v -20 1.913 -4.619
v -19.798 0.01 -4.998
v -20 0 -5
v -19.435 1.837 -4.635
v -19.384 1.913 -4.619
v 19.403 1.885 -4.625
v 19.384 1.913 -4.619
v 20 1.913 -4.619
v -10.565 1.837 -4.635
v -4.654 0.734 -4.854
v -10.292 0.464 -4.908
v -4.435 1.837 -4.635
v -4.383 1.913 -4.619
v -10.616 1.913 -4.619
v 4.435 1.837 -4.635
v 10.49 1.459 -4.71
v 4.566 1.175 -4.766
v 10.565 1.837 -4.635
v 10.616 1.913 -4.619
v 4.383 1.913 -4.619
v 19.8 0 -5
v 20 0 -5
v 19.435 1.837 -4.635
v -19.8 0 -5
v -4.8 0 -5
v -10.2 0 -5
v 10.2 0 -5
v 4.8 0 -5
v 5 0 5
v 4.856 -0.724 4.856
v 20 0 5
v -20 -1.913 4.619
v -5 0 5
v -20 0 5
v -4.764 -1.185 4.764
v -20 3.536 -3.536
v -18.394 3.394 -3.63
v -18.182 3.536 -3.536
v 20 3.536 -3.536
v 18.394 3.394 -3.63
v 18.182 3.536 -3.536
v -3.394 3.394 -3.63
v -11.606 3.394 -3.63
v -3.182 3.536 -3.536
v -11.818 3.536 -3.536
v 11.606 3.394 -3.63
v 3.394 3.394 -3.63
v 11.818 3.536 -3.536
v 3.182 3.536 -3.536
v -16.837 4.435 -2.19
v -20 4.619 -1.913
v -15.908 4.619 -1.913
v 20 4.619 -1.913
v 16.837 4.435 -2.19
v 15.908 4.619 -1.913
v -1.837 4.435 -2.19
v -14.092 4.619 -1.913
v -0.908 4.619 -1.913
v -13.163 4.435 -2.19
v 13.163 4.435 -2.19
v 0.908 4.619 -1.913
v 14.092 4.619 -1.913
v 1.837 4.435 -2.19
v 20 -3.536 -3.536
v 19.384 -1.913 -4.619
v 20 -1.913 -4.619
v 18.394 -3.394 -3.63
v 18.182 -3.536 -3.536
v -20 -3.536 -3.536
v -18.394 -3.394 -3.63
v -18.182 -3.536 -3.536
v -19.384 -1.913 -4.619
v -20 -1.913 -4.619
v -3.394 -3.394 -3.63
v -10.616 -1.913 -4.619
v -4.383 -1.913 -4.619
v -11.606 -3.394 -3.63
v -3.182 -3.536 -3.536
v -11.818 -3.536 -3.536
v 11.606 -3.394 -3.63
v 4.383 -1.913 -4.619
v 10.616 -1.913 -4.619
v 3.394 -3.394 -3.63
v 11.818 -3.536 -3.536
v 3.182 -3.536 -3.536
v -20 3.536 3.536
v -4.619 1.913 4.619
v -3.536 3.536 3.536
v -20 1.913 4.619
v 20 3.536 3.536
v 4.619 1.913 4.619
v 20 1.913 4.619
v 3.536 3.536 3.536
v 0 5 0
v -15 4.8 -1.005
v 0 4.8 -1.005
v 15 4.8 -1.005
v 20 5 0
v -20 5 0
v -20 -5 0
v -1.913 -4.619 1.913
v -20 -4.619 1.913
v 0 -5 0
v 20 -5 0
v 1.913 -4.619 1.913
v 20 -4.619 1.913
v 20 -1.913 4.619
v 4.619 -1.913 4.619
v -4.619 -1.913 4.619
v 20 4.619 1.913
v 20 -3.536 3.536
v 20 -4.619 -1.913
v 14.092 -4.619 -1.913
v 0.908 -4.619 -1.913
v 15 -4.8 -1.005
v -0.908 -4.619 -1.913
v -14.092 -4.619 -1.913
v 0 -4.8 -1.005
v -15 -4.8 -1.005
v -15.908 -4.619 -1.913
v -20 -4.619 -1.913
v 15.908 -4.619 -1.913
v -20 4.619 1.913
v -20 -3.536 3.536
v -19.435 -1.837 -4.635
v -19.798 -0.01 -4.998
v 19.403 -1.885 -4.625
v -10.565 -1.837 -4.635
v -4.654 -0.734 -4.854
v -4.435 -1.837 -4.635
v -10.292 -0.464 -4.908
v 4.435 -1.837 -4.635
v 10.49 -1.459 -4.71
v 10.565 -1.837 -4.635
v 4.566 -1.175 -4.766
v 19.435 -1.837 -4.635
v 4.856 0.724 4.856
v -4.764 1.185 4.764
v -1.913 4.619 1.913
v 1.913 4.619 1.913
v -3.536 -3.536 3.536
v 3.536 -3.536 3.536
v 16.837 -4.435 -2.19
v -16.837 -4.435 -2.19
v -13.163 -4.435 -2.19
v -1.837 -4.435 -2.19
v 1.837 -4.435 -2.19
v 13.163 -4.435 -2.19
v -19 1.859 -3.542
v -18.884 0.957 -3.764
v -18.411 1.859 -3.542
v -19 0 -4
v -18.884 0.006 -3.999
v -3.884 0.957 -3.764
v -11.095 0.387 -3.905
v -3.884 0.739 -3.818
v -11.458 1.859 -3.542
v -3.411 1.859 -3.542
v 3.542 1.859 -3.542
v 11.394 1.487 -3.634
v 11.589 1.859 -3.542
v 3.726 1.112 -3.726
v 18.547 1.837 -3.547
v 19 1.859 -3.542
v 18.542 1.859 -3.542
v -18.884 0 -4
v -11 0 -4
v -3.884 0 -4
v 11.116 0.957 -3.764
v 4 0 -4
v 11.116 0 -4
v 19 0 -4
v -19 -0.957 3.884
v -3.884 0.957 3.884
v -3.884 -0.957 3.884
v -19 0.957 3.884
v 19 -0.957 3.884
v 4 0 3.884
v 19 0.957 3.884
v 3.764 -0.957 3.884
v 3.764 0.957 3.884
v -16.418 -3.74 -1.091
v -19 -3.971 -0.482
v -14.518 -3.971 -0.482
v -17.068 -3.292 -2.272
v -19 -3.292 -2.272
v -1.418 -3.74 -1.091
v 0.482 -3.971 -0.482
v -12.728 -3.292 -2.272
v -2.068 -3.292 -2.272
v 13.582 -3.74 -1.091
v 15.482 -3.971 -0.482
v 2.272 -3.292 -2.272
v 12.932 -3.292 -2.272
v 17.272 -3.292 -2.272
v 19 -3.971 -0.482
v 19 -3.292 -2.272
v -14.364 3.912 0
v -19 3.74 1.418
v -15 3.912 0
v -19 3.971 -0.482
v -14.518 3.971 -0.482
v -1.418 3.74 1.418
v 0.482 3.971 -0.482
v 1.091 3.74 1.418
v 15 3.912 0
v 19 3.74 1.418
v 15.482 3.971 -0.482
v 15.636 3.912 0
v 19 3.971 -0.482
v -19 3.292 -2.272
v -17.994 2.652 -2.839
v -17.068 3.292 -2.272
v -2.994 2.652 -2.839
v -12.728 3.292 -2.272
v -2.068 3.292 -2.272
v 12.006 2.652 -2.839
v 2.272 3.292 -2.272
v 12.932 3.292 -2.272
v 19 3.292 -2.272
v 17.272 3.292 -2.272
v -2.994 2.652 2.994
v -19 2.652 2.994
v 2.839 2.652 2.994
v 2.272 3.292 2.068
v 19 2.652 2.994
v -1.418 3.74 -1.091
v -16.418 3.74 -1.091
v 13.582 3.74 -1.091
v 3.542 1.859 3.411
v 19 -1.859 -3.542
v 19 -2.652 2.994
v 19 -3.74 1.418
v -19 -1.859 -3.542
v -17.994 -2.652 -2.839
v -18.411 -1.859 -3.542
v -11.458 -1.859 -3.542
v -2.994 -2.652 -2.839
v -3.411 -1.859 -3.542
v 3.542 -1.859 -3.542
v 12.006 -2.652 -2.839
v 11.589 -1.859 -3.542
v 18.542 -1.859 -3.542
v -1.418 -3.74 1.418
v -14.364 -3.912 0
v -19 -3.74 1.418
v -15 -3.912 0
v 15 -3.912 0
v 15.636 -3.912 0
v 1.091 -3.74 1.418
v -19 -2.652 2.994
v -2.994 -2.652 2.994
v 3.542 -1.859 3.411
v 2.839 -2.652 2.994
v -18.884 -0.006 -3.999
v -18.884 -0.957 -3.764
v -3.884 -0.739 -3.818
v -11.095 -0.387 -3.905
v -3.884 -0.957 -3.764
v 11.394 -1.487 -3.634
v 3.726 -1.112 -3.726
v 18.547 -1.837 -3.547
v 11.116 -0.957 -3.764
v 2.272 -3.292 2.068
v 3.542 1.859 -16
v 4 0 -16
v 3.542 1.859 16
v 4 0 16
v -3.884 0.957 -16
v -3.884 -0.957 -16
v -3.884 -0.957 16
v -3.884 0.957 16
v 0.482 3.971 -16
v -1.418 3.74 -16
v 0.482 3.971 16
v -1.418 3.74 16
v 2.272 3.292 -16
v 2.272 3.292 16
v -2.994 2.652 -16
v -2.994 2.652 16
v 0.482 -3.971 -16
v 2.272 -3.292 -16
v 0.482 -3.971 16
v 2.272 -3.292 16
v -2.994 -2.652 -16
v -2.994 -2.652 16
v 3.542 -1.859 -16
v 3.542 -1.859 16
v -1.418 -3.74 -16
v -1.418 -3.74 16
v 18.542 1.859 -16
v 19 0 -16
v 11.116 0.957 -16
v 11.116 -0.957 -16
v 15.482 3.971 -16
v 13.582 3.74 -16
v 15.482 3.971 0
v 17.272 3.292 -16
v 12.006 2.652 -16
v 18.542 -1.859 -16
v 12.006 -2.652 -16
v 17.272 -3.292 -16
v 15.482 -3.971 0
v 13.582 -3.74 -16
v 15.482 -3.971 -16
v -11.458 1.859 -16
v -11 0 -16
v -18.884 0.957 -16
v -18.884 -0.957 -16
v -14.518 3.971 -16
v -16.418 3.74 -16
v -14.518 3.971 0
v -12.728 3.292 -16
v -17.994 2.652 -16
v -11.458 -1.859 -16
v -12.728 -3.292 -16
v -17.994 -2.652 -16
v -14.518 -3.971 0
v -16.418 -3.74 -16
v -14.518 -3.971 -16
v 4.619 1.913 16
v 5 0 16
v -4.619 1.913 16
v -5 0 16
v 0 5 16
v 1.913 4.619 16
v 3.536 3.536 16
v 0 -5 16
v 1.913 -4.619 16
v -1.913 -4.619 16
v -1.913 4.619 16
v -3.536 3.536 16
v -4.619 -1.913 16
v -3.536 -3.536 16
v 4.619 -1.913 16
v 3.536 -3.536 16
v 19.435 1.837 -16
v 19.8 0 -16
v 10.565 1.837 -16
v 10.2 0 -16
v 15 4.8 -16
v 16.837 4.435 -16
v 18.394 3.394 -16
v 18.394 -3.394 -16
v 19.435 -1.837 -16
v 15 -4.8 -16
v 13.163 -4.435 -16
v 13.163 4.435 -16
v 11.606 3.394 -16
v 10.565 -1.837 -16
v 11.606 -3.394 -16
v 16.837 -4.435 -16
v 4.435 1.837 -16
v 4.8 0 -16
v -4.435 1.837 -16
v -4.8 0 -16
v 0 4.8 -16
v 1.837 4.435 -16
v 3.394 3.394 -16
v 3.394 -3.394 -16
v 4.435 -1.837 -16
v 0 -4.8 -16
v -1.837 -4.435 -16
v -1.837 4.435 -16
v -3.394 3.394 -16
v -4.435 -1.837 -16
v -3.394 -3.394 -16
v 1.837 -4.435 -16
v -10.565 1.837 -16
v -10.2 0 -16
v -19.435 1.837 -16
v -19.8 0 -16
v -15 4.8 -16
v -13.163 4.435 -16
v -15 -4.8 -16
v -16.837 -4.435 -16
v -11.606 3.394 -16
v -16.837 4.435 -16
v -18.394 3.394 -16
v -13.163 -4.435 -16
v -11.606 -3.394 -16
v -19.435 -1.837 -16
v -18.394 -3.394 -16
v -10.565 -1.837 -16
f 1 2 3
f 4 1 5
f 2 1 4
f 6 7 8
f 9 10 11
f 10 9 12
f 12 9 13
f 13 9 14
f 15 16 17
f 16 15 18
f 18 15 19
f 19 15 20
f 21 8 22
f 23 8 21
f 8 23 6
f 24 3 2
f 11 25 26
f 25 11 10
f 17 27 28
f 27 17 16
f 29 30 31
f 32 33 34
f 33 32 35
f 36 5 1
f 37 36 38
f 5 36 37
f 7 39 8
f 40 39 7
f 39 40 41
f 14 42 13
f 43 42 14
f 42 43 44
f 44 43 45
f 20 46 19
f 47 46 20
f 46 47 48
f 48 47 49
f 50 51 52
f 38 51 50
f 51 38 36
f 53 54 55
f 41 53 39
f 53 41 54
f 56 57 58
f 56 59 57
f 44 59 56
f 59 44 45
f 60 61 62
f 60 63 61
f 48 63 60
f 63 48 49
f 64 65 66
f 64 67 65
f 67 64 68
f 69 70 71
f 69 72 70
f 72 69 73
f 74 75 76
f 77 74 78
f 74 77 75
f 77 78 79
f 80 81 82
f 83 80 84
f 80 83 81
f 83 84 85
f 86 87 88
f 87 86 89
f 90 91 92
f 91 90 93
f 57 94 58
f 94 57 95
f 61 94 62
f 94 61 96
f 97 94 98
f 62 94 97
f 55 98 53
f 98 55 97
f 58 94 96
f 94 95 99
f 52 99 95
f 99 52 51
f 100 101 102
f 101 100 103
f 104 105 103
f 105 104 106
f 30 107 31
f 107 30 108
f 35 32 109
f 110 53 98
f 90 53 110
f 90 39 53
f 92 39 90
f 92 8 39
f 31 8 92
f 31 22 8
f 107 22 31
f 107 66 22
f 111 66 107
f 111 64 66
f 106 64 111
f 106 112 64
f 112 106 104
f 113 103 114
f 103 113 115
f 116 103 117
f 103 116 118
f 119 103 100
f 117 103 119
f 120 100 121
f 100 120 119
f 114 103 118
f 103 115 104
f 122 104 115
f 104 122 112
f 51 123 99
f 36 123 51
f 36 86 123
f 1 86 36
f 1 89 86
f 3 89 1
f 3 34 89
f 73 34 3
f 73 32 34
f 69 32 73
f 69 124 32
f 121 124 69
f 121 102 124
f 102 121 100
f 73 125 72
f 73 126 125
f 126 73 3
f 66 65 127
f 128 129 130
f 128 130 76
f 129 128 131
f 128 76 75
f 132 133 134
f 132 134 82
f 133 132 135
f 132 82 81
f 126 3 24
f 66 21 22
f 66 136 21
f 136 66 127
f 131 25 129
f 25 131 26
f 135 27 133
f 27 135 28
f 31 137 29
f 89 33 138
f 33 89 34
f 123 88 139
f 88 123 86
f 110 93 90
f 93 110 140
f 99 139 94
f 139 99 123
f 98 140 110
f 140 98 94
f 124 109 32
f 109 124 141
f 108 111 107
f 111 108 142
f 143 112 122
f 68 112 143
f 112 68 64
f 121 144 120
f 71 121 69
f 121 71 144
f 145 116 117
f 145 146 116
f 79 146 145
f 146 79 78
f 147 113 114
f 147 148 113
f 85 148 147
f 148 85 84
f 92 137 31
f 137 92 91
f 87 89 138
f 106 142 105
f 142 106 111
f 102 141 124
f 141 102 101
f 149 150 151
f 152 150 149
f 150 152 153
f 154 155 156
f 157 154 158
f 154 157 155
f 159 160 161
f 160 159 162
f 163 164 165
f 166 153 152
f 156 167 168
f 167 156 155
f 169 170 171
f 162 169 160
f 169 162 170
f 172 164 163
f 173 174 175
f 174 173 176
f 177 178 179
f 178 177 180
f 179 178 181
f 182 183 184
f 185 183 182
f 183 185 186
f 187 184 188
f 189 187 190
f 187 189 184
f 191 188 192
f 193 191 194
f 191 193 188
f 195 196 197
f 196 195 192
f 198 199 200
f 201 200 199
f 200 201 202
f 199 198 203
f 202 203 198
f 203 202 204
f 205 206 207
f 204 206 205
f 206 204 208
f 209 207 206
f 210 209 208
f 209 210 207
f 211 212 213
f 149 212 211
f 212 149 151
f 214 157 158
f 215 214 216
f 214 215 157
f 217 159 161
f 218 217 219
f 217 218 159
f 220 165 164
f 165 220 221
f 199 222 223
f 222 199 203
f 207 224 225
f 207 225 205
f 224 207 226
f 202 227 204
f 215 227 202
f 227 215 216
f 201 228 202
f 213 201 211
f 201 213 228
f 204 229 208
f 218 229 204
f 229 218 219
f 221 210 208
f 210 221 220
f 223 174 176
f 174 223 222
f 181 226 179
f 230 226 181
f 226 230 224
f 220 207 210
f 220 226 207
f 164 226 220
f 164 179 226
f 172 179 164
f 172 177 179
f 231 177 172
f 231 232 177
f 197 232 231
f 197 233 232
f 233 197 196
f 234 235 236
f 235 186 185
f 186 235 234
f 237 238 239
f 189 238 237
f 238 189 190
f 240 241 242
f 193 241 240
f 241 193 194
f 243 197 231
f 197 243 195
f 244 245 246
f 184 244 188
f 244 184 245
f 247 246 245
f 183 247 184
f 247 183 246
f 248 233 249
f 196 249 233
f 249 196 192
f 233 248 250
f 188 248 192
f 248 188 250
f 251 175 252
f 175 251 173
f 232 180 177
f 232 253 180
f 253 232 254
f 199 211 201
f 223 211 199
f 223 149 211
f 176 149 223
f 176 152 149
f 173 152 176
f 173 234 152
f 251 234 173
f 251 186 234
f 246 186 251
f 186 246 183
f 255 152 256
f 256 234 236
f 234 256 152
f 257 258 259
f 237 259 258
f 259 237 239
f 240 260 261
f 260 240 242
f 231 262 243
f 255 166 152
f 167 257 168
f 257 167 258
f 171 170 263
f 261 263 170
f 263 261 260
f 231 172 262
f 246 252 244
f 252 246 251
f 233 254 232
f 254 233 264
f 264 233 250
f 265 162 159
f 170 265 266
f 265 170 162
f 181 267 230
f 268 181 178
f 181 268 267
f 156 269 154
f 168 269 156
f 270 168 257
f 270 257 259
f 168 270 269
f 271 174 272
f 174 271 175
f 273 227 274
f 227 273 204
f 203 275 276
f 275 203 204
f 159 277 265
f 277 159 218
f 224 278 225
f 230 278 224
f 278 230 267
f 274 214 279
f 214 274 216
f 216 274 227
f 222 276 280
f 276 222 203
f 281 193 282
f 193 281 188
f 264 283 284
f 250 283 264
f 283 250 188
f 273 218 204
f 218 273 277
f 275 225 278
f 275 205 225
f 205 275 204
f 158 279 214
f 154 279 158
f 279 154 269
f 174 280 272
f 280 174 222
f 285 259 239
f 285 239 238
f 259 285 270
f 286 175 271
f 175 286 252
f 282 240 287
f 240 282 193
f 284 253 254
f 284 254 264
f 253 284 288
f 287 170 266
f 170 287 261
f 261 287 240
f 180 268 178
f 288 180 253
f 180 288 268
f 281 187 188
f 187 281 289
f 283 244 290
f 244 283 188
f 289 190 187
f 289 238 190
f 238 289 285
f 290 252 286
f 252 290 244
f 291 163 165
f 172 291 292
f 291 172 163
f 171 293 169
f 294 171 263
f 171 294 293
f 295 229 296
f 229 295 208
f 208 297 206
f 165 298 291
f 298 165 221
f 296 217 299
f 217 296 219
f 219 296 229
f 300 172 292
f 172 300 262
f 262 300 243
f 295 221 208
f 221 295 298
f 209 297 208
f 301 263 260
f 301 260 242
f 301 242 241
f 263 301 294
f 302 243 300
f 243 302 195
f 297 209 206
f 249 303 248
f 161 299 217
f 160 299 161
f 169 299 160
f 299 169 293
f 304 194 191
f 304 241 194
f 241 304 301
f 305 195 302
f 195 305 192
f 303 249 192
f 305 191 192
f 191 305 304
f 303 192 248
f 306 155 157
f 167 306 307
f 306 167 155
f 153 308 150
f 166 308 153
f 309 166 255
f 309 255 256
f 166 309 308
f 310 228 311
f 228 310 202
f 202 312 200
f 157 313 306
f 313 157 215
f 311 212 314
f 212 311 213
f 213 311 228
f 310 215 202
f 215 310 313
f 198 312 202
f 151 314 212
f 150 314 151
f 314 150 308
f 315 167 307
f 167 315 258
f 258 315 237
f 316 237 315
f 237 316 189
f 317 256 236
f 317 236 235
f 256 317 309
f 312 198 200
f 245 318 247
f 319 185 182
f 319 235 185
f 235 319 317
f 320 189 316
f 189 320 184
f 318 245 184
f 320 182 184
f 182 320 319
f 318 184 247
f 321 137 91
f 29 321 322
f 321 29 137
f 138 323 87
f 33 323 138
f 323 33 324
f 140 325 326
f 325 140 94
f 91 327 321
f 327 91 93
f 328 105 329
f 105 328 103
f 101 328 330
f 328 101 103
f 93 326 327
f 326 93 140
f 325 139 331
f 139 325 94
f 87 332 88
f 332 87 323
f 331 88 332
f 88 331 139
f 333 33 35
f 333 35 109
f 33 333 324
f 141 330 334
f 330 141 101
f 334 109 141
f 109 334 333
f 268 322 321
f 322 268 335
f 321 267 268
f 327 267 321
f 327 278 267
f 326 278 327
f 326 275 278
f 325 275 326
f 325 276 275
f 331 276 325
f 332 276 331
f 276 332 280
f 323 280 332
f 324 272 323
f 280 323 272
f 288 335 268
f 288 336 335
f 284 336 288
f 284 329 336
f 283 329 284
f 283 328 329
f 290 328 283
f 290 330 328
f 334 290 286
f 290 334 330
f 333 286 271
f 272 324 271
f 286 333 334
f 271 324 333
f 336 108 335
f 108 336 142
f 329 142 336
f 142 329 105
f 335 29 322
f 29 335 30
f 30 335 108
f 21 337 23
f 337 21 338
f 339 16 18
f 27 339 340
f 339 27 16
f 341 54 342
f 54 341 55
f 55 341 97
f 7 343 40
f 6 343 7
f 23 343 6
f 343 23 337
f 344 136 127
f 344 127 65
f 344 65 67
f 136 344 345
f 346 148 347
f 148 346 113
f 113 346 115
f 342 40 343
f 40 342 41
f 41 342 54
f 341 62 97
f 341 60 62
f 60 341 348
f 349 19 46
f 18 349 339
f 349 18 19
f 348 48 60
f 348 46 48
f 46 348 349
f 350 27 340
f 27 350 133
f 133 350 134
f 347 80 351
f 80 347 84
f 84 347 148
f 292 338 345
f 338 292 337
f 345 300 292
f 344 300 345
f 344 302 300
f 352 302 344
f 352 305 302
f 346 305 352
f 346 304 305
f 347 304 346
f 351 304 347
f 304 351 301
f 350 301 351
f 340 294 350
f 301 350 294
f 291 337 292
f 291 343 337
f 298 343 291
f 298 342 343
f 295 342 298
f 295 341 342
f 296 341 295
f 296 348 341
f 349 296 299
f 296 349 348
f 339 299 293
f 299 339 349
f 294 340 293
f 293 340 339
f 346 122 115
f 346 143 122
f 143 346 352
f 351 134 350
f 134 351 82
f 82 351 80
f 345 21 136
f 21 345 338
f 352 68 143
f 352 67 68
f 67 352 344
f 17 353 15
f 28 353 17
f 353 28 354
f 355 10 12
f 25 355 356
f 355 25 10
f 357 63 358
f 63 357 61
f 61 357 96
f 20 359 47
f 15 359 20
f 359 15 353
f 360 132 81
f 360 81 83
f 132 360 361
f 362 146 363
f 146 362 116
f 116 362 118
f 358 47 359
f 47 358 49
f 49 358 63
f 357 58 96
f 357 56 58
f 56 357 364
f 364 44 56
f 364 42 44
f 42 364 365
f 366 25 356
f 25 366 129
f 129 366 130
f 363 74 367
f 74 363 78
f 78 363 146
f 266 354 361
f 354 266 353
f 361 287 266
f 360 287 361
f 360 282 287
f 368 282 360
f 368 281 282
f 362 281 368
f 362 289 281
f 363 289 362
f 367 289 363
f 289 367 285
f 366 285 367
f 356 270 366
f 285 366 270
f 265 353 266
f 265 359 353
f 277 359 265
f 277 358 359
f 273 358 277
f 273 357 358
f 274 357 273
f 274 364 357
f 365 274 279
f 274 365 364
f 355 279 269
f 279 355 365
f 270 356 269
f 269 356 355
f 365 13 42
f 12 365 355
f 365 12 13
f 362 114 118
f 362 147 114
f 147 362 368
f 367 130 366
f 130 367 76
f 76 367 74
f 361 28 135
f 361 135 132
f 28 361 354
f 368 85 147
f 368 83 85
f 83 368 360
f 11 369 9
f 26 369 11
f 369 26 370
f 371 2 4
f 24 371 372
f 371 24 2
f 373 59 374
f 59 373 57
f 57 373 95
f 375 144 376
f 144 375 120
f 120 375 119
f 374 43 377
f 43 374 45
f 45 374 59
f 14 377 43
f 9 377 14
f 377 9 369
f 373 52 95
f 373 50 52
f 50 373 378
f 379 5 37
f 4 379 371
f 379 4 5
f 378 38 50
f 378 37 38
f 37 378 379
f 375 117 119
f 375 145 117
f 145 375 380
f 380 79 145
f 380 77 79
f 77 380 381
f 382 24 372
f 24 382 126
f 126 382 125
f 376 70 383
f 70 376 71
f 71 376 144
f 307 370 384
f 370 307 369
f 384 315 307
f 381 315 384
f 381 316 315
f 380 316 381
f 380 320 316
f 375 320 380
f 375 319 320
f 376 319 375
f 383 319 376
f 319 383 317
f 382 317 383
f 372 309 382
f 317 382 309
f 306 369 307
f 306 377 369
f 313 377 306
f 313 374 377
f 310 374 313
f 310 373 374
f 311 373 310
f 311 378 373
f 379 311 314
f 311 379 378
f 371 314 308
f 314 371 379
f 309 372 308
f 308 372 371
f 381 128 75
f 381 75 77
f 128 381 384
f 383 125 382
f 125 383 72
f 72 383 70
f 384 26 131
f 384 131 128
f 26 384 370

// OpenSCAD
union(){
  difference(){
    rotate([0, 90, 0]){
      cylinder(h=40, r=5, center=true);
    }
    rotate([0, 90, 0]){
      cylinder(h=38, r=4, center=true);
    }
    translate([0, 0, -5]){
      cylinder(h=30, r=4, center=true);
    }
    translate([15, 0, -5]){
      cylinder(h=10, r=4, center=true);
    }
    translate([-15, 0, -5]){
      cylinder(h=10, r=4, center=true);
    }
  }
  difference(){
    translate([0, 0, 8]){
      cylinder(h=16, r=5, center=true);
    }
    translate([0, 0, 8]){
      cylinder(h=17, r=4, center=true);
    }
    rotate([0, 90, 0]){
      cylinder(h=38, r=4, center=true);
    }
  }
  difference(){
    translate([15, 0, -8]){
      cylinder(h=16, r=4.8, center=true);
    }
    translate([15, 0, -8]){
      cylinder(h=17, r=4, center=true);
    }
    rotate([0, 90, 0]){
      cylinder(h=38, r=4, center=true);
    }
  }
  difference(){
    translate([0, 0, -8]){
      cylinder(h=16, r=4.8, center=true);
    }
    translate([0, 0, -8]){
      cylinder(h=17, r=4, center=true);
    }
    rotate([0, 90, 0]){
      cylinder(h=38, r=4, center=true);
    }
  }
  difference(){
    translate([-15, 0, -8]){
      cylinder(h=16, r=4.8, center=true);
    }
    translate([-15, 0, -8]){
      cylinder(h=17, r=4, center=true);
    }
    rotate([0, 90, 0]){
      cylinder(h=38, r=4, center=true);
    }
  }
}
 
